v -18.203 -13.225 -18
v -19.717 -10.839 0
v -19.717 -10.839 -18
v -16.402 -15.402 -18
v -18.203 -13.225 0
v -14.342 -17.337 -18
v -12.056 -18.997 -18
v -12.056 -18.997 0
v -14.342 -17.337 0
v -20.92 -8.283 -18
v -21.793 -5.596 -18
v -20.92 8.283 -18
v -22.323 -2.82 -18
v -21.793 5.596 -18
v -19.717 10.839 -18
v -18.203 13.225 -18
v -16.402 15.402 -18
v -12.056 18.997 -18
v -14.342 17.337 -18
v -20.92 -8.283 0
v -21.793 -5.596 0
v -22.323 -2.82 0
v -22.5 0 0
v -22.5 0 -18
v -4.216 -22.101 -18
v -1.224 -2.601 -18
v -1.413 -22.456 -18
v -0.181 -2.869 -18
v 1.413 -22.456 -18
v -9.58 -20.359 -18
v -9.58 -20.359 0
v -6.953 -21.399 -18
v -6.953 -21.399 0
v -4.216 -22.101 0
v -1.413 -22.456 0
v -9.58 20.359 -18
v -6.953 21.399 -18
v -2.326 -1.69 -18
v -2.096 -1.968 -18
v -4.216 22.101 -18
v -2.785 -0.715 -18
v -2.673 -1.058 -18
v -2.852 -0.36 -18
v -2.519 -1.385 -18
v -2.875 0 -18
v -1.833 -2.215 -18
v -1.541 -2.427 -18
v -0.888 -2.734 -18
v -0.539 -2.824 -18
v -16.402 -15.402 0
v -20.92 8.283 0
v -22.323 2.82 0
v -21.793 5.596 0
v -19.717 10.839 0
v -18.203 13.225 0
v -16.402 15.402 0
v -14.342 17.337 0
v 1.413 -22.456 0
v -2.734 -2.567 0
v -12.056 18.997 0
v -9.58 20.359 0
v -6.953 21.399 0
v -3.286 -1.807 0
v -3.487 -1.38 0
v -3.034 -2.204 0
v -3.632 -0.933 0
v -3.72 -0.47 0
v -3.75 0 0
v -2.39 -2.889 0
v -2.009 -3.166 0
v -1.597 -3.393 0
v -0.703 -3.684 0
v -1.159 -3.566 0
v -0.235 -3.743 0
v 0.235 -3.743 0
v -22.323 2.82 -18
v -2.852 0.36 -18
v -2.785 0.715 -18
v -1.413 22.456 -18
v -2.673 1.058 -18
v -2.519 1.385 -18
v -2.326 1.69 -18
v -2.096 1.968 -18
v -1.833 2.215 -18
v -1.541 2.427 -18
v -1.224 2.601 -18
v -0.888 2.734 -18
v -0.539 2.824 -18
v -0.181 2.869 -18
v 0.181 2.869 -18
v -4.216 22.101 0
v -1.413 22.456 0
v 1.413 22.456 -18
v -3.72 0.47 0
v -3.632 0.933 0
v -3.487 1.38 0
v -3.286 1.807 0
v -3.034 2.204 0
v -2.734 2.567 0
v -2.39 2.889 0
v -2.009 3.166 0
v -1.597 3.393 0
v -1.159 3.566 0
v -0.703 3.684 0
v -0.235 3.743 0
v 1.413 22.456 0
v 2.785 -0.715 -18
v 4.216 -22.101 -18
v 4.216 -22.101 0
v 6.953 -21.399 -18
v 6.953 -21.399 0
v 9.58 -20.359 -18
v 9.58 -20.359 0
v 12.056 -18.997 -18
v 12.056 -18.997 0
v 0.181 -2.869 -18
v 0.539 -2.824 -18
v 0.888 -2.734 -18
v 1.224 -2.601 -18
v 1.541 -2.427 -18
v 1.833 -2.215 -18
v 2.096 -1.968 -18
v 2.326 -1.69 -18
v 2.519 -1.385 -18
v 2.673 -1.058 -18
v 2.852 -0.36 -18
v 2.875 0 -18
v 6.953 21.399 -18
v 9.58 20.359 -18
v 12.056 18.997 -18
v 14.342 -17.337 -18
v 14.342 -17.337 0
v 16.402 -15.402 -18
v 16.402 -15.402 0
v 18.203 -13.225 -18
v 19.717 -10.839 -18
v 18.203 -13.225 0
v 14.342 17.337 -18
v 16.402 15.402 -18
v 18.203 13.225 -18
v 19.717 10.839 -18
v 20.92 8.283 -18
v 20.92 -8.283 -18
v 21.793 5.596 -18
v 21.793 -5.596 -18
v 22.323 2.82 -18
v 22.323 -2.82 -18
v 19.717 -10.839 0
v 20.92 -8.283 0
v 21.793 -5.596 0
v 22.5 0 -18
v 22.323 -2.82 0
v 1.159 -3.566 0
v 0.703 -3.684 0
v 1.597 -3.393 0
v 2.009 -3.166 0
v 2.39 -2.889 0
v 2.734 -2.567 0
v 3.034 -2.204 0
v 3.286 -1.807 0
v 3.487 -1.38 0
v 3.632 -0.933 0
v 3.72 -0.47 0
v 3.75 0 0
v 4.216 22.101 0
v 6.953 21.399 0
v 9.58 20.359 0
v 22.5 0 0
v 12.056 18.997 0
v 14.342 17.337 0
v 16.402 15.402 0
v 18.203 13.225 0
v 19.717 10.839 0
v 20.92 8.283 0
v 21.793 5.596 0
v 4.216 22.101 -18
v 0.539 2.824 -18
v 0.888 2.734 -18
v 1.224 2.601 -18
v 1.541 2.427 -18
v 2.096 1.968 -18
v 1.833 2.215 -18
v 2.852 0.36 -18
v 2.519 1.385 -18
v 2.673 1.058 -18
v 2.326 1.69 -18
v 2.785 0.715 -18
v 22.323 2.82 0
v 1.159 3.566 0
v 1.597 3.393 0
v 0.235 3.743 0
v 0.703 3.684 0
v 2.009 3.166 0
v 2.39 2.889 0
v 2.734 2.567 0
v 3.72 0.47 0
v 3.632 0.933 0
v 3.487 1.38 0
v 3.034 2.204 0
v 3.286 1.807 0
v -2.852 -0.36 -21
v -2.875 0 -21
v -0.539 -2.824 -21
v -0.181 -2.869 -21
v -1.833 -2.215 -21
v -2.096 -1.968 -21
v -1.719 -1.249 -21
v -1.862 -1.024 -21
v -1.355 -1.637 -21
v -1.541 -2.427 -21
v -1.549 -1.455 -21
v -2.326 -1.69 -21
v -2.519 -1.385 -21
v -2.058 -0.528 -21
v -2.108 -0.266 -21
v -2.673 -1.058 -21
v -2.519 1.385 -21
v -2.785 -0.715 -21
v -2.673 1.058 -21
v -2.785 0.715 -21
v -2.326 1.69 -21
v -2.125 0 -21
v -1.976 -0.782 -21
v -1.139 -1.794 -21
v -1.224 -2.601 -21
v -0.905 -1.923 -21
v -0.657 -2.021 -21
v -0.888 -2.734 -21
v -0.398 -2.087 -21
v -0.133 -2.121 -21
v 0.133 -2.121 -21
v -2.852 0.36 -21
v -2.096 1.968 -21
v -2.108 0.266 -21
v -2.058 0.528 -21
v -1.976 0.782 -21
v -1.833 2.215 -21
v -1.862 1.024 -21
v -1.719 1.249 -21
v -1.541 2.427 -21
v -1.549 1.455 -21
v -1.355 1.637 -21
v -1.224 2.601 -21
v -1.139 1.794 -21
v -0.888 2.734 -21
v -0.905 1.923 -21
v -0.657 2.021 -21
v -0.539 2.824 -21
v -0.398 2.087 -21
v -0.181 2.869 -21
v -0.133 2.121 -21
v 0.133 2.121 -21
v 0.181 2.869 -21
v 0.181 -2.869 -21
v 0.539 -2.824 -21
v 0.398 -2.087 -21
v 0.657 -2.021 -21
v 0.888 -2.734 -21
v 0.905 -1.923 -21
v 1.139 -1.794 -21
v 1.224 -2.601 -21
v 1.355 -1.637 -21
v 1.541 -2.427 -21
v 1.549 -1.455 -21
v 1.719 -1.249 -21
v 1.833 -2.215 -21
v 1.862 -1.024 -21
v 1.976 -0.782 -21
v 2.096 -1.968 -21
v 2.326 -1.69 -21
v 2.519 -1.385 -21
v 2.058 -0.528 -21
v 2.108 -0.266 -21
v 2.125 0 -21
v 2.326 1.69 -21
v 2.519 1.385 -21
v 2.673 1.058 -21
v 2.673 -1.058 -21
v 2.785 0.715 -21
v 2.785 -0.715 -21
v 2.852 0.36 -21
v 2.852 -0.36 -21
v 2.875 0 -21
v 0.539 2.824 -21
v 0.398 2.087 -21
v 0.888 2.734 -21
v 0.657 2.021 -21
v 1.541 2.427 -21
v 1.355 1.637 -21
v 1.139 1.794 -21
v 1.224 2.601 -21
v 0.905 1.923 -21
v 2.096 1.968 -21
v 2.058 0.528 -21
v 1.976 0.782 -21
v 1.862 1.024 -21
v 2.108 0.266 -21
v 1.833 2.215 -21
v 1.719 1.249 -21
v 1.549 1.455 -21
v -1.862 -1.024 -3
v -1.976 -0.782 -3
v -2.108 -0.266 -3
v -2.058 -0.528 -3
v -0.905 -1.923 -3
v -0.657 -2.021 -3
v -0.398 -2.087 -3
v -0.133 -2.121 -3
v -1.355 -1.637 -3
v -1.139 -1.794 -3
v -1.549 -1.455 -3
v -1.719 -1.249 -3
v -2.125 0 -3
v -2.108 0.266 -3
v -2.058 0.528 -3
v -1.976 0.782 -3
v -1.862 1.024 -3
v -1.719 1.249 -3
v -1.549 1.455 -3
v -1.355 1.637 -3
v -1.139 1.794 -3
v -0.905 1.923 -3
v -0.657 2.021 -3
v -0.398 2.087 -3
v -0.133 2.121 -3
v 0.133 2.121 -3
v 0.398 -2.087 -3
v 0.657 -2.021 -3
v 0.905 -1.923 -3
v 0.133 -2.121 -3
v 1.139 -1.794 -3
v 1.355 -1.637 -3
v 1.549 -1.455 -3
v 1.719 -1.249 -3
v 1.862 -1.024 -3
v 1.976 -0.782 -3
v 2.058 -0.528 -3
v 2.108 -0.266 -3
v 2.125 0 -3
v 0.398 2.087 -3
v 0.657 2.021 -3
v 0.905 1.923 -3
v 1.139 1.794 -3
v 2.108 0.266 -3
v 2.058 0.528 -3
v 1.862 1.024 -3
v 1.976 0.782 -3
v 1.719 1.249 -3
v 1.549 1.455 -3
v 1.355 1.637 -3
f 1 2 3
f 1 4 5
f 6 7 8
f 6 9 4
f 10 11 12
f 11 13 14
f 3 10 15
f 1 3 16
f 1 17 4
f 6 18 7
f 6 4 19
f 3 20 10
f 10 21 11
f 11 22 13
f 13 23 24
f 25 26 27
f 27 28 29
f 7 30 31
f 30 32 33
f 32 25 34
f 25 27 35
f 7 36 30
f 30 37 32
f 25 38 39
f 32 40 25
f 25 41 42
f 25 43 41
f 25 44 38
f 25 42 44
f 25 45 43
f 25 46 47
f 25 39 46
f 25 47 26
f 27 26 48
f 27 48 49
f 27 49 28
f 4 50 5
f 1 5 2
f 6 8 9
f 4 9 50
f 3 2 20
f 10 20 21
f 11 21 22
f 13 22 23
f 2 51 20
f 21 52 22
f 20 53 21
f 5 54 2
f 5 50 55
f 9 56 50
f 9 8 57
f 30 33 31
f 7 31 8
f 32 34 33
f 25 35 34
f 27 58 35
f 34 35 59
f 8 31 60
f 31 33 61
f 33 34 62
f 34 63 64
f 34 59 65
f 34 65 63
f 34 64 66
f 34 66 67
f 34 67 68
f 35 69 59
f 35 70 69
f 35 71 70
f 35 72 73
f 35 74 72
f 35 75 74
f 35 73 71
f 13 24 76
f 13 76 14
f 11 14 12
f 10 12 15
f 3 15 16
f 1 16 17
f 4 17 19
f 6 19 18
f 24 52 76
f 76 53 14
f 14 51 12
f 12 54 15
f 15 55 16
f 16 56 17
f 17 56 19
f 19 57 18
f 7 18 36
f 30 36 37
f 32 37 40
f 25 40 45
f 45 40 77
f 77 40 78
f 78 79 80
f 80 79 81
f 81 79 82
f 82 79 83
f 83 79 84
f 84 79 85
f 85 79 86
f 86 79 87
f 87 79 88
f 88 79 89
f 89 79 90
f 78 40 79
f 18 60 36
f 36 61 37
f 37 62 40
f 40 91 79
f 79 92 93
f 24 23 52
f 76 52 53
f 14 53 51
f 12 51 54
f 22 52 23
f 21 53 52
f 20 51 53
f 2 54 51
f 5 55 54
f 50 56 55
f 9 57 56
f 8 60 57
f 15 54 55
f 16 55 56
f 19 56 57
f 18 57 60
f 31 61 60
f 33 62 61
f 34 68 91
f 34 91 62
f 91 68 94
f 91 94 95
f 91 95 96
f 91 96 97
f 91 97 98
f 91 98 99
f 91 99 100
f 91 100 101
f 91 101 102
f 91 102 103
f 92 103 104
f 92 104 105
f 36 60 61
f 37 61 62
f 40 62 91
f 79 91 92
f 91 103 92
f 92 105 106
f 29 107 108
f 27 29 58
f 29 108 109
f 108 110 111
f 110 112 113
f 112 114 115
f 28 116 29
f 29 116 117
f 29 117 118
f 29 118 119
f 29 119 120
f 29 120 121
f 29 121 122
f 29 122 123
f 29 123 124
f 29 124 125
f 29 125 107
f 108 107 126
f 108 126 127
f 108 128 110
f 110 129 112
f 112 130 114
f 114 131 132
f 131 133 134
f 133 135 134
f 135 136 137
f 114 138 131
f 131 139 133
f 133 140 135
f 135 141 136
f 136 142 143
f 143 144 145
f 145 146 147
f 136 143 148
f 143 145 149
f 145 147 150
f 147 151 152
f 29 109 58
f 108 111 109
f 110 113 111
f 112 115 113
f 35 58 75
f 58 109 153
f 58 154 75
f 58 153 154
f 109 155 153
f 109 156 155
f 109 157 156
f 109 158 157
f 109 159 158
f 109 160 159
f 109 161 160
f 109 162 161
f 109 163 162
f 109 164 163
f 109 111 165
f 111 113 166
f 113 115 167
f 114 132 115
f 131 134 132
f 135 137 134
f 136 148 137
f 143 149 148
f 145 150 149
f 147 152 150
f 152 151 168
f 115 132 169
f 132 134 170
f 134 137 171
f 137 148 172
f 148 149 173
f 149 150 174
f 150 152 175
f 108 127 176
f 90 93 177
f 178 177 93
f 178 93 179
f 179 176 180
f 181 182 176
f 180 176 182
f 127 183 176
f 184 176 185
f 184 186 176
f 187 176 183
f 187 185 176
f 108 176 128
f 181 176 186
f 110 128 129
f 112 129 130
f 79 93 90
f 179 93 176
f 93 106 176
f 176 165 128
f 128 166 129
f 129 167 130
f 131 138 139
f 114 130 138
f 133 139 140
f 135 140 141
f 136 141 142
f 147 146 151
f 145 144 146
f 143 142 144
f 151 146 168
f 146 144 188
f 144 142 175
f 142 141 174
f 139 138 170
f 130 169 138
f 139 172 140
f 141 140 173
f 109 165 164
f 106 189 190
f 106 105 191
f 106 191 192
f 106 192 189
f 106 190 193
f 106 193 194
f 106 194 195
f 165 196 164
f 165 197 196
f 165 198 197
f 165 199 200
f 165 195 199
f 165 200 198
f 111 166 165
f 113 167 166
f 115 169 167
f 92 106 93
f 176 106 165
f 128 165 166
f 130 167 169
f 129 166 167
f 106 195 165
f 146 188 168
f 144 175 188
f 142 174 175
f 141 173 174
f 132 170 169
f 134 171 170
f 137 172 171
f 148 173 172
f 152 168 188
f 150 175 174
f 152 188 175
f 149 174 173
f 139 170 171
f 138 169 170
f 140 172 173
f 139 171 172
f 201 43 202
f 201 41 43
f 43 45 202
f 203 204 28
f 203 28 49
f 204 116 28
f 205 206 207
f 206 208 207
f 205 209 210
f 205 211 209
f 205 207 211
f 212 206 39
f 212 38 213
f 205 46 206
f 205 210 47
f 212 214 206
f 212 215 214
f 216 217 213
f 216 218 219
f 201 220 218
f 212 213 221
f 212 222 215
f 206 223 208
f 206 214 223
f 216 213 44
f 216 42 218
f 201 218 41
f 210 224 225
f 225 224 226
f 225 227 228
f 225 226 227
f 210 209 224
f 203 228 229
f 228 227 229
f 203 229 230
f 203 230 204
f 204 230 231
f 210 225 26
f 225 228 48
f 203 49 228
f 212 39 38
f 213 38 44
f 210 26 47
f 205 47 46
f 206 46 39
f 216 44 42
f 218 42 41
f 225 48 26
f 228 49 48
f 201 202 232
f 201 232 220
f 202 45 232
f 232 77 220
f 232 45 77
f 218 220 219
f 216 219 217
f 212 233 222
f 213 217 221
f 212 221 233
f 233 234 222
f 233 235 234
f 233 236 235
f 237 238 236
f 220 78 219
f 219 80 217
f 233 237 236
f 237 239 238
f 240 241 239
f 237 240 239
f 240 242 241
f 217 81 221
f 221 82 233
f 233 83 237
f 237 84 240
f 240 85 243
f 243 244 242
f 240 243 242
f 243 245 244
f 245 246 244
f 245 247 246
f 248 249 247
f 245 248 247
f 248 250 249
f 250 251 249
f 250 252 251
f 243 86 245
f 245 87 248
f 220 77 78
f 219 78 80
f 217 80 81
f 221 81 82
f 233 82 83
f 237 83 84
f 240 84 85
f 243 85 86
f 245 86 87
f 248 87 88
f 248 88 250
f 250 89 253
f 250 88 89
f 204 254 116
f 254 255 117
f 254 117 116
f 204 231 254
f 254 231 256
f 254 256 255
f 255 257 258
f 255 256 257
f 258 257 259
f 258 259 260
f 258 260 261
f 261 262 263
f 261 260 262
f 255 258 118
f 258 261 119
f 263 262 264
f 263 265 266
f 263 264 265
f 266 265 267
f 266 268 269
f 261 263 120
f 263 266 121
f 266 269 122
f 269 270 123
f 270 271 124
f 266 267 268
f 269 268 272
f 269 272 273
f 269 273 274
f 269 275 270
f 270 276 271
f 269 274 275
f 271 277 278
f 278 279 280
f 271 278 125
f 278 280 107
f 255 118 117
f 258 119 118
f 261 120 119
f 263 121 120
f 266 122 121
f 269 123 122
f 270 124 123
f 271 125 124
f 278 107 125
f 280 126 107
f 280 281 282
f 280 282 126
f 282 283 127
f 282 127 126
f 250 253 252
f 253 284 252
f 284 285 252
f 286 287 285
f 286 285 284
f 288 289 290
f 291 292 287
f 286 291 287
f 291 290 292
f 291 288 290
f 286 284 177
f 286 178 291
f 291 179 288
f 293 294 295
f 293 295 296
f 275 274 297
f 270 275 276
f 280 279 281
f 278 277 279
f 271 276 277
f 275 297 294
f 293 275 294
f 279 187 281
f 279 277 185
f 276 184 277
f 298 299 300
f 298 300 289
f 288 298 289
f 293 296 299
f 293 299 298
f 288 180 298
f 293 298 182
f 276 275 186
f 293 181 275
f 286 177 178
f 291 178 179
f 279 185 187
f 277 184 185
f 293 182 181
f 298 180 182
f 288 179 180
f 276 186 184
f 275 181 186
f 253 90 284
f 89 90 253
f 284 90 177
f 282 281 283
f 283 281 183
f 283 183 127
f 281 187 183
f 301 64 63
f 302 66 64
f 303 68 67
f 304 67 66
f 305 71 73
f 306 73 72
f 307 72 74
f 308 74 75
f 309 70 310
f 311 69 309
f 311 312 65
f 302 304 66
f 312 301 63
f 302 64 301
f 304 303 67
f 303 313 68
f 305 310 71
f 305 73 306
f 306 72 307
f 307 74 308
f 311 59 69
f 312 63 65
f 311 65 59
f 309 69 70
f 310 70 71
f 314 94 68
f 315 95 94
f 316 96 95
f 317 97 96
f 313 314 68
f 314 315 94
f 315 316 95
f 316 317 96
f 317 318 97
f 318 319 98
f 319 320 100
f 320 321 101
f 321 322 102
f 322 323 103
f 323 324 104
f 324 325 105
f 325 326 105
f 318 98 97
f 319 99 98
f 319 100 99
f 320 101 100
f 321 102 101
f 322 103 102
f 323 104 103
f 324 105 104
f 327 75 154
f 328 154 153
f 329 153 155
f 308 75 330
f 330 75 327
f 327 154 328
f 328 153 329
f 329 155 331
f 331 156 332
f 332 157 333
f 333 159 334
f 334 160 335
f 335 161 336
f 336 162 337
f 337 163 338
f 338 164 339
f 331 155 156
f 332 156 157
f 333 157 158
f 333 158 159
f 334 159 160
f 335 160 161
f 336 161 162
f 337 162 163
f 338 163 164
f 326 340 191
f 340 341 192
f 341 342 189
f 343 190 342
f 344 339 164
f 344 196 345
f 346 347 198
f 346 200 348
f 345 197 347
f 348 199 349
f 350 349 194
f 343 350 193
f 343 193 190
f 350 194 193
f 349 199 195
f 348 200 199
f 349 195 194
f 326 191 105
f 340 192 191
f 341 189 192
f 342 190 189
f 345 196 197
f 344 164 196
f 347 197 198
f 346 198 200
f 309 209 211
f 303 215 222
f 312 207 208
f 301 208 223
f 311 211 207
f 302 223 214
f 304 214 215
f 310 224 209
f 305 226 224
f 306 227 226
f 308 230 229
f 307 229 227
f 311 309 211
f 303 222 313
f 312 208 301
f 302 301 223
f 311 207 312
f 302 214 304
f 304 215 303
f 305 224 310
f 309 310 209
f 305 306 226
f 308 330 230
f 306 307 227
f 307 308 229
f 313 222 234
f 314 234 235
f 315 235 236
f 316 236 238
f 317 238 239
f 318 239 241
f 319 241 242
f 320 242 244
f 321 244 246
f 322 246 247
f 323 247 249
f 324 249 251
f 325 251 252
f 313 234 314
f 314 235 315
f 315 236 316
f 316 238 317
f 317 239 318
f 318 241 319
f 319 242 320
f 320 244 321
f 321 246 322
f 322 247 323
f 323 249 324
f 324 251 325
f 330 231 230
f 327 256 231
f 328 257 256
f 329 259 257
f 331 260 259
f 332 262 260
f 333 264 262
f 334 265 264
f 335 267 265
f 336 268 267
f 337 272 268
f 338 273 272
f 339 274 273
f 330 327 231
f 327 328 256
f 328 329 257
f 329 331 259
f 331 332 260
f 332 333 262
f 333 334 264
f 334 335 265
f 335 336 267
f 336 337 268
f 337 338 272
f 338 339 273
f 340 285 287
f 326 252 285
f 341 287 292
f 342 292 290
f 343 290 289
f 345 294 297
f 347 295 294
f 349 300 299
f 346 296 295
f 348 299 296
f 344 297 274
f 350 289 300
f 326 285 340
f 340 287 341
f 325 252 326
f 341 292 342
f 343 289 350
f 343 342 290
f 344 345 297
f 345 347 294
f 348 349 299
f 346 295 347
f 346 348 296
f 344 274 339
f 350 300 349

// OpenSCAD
$fn = 50;

difference() {
	union() {
		translate(v = [0, 0, -18.0]) {
			cylinder(h = 18, r = 22.5);
		}
		#translate(v = [0, 0, -21.0]) {
			cylinder(h = 21, r = 2.875);
		}
	}
	union() {
		translate(v = [0, 0, 0]) {
			rotate(a = [0, 0, 0]) {
				difference() {
					union() {
						translate(v = [0, 0, -21.0]) {
							cylinder(h = 21, r = 2.0);
						}
						translate(v = [0, 0, -3]) {
							cylinder(h = 3, r1 = 2.125, r2 = 3.75);
						}
						translate(v = [0, 0, -21.0]) {
							cylinder(h = 21, r = 2.125);
						}
						translate(v = [0, 0, -21.0]) {
							cylinder(h = 21, r = 2.0);
						}
					}
					union();
				}
			}
		}
	}
}
